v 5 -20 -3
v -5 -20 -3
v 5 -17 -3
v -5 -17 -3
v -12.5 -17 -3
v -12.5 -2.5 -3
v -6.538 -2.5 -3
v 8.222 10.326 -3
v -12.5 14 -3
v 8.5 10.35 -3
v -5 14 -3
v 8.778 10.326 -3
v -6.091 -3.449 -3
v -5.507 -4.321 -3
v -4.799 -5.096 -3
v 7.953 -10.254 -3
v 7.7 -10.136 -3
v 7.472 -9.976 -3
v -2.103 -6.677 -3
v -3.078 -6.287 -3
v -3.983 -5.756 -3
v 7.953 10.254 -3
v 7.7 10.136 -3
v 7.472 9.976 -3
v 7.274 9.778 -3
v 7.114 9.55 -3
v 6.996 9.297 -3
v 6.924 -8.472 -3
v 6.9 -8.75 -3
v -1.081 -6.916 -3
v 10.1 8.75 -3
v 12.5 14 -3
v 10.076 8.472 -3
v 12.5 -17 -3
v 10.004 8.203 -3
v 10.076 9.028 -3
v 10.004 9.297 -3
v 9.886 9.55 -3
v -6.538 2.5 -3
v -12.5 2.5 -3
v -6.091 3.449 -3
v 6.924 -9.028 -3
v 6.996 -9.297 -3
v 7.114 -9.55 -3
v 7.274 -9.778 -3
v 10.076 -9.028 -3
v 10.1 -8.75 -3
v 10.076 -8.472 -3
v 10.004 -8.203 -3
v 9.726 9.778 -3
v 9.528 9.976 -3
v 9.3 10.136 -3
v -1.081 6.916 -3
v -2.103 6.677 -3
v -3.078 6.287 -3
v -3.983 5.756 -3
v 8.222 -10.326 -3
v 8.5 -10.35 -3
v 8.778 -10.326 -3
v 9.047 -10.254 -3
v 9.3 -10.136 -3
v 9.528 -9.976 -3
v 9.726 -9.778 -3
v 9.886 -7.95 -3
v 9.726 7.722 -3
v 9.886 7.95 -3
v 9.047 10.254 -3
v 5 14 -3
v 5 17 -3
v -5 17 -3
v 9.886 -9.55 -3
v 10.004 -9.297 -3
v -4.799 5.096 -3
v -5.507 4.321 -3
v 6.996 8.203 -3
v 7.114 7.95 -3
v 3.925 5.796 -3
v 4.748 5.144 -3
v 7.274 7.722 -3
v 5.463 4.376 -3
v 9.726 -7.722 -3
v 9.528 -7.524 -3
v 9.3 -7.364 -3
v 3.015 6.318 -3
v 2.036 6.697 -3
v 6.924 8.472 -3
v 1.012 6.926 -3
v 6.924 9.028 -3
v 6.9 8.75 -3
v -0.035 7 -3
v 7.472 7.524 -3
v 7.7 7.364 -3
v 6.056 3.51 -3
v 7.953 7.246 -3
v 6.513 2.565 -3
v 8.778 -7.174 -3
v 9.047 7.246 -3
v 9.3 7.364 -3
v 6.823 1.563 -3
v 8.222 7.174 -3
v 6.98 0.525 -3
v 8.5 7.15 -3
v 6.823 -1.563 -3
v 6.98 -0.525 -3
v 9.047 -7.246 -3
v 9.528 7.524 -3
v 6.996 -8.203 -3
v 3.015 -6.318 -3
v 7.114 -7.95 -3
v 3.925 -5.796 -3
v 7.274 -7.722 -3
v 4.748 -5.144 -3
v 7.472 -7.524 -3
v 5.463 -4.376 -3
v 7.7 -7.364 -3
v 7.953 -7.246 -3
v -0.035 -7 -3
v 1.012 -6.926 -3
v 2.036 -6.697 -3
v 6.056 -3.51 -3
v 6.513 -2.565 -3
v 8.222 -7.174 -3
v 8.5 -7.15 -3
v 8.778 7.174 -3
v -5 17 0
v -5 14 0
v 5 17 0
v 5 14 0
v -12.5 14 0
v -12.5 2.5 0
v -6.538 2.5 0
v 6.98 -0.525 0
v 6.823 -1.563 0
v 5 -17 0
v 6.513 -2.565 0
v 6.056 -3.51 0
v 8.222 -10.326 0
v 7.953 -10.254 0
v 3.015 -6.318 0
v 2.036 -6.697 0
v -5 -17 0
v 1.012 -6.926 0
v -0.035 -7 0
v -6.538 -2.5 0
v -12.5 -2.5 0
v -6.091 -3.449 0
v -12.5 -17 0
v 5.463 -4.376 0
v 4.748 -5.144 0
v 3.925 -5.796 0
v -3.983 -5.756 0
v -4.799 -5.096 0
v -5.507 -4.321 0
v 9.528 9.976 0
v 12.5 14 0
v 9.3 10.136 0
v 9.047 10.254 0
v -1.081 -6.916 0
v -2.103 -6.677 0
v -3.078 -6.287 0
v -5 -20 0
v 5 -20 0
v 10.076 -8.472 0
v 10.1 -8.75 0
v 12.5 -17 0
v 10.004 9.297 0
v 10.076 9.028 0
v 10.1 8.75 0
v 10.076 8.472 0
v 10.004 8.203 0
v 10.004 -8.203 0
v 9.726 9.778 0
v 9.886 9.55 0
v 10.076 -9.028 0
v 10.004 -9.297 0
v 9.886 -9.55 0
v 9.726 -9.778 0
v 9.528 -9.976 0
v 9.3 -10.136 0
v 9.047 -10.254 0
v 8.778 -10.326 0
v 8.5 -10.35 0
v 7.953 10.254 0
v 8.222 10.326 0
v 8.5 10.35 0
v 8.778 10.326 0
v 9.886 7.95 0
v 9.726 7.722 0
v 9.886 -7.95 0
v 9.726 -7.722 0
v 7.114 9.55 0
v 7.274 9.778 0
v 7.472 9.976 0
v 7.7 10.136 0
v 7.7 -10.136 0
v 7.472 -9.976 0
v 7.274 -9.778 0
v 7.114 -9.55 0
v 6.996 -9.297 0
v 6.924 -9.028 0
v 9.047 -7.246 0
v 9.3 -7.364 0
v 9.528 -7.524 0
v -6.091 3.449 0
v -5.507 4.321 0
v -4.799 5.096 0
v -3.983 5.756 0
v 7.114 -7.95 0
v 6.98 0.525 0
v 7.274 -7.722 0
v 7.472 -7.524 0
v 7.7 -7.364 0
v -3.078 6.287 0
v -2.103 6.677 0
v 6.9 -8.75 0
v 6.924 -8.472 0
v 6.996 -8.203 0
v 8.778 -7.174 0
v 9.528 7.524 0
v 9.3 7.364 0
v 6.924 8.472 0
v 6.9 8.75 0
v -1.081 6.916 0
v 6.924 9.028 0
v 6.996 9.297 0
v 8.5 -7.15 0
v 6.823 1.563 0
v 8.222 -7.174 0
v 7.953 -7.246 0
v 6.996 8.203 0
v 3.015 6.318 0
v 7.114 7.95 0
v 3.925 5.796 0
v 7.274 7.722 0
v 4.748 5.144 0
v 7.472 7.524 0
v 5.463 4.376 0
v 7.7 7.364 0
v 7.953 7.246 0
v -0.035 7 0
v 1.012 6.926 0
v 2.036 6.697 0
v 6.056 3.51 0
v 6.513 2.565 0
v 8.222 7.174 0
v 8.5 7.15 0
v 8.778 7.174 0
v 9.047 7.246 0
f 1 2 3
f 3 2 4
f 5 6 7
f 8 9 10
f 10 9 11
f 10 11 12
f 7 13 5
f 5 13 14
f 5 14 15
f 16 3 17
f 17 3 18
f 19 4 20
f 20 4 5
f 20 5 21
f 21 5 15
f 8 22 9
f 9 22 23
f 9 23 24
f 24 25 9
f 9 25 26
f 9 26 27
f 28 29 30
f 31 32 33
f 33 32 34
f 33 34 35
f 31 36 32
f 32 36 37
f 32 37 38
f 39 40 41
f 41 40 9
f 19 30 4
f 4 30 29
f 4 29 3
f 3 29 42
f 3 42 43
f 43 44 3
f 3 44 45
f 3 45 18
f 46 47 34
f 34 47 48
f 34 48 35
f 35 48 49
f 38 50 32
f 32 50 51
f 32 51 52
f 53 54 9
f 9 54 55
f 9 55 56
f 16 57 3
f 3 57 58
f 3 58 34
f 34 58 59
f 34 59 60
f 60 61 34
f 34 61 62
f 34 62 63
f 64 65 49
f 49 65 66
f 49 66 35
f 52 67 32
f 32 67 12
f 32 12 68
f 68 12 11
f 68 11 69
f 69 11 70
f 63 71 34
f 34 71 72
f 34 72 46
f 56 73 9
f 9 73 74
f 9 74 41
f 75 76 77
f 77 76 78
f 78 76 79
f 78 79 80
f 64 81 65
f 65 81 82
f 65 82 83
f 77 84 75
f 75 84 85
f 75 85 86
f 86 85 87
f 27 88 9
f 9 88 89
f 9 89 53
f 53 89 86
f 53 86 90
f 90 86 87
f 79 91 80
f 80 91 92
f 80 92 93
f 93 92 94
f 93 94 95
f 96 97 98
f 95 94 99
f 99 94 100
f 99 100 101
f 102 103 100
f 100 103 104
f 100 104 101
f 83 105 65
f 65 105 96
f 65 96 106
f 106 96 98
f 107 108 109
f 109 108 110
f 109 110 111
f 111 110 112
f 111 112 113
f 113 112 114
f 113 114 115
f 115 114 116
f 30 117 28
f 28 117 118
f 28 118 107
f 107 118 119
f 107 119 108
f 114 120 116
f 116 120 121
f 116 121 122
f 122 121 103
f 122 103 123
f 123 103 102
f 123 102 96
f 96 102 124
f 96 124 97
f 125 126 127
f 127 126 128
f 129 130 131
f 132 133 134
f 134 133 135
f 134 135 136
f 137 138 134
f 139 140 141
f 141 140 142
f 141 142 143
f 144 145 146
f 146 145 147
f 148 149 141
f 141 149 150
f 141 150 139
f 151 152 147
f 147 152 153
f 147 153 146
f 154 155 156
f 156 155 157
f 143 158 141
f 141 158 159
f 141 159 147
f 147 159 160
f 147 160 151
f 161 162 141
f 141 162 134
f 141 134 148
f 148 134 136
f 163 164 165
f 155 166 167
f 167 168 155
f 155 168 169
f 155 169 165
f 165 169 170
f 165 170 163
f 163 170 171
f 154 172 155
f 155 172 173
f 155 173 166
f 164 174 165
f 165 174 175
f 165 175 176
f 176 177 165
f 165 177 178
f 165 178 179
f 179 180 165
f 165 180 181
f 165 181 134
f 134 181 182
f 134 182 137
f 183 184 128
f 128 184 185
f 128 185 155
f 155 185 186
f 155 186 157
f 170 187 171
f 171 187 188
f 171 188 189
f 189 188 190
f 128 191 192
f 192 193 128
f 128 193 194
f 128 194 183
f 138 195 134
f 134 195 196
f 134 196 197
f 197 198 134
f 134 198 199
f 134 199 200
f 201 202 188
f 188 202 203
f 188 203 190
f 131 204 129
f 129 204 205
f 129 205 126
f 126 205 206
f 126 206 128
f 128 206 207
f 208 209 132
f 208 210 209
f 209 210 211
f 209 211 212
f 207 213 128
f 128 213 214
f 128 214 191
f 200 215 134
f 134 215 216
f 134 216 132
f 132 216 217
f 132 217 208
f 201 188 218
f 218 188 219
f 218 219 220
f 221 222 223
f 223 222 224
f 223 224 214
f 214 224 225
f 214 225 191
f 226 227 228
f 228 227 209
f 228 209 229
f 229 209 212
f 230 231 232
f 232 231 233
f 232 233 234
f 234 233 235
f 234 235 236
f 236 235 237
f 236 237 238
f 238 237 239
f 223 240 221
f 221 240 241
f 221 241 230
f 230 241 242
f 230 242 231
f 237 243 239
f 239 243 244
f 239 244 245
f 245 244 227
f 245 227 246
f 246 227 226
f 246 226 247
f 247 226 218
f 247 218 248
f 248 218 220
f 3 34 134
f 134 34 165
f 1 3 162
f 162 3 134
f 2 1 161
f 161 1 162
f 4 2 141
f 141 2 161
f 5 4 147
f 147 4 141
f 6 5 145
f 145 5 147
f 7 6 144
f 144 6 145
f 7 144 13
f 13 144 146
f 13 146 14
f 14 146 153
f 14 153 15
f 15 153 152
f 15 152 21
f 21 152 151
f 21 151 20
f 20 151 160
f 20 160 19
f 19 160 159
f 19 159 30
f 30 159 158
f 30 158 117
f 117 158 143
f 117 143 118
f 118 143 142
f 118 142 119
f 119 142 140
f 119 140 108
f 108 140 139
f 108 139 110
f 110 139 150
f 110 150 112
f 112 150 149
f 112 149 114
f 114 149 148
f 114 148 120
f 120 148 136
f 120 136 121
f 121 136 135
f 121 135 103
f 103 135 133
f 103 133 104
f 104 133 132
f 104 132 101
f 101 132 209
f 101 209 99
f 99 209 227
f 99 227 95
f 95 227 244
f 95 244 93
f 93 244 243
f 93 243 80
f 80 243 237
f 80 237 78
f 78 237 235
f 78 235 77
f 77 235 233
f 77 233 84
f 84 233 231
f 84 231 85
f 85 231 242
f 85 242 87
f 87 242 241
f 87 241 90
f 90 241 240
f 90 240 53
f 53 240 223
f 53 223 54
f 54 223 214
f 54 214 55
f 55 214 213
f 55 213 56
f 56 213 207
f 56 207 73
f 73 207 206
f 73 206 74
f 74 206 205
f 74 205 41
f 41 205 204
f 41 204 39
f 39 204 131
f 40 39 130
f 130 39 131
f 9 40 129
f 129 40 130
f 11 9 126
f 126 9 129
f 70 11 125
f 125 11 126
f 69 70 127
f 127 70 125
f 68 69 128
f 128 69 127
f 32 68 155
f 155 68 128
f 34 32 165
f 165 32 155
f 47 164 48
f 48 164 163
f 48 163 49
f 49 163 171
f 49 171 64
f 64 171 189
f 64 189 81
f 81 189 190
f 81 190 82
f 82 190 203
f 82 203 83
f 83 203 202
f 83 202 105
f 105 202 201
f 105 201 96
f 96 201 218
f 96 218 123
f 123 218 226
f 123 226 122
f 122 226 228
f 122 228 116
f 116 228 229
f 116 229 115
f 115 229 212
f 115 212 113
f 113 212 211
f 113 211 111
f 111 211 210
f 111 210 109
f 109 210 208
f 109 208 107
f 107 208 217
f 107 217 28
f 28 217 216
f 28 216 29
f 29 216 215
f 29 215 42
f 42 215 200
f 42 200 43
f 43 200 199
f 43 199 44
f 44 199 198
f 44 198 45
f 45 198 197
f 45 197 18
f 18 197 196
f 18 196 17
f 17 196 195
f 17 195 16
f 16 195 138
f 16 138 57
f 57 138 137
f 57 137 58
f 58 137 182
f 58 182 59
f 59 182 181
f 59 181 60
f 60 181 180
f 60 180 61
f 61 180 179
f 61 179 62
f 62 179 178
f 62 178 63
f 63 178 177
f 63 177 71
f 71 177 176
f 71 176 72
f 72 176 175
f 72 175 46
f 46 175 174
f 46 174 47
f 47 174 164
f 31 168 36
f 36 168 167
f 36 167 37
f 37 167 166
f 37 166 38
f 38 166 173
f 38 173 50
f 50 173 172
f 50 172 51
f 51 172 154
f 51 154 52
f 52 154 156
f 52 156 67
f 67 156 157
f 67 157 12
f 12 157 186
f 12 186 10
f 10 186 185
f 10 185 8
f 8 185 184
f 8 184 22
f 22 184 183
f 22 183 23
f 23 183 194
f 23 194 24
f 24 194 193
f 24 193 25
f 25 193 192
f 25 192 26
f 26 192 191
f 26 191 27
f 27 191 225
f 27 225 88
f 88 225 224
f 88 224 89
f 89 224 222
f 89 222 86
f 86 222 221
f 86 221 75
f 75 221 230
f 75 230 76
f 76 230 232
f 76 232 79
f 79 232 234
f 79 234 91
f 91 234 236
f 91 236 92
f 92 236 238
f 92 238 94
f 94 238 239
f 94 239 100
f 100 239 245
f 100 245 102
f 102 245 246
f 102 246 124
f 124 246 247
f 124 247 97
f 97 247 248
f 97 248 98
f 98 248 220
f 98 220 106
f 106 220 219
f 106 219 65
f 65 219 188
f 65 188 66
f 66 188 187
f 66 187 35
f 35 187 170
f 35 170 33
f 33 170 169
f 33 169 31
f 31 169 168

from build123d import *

# Parameters (mm, degrees)
SKETCH1_R           = 1.6
BOSS_EXTRUDE1_DEPTH = 3


with BuildPart() as part:
    # Sketch1 → Boss-Extrude1 (new body)
    with BuildSketch(Plane(origin=(0, 0, 0), x_dir=(1, 0, 0), z_dir=(0, 0, -1))):
        with BuildLine():
            Line((-5, 17), (-5, 20))
            Line((-5, 20), (5, 20))
            Line((5, 20), (5, 17))
            Line((5, 17), (12.5, 17))
            Line((12.5, 17), (12.5, -14))
            Line((12.5, -14), (5, -14))
            Line((5, -14), (5, -17))
            Line((5, -17), (-5, -17))
            Line((-5, -17), (-5, -14))
            Line((-5, -14), (-12.5, -14))
            Line((-12.5, -14), (-12.5, -2.5))
            Line((-12.5, -2.5), (-6.538348415, -2.5))
            ThreePointArc((-6.538348415, -2.5), (7, 0), (-6.538348415, 2.5))
            Line((-6.538348415, 2.5), (-12.5, 2.5))
            Line((-12.5, 2.5), (-12.5, 17))
            Line((-12.5, 17), (-5, 17))
        make_face()
        with Locations(Location((8.5, 8.75, 0), (0, 0, 180))):
            Circle(SKETCH1_R, mode=Mode.SUBTRACT)
        with Locations((8.5, -8.75)):
            Circle(SKETCH1_R, mode=Mode.SUBTRACT)
    extrude(amount=BOSS_EXTRUDE1_DEPTH)


solid = part.part
